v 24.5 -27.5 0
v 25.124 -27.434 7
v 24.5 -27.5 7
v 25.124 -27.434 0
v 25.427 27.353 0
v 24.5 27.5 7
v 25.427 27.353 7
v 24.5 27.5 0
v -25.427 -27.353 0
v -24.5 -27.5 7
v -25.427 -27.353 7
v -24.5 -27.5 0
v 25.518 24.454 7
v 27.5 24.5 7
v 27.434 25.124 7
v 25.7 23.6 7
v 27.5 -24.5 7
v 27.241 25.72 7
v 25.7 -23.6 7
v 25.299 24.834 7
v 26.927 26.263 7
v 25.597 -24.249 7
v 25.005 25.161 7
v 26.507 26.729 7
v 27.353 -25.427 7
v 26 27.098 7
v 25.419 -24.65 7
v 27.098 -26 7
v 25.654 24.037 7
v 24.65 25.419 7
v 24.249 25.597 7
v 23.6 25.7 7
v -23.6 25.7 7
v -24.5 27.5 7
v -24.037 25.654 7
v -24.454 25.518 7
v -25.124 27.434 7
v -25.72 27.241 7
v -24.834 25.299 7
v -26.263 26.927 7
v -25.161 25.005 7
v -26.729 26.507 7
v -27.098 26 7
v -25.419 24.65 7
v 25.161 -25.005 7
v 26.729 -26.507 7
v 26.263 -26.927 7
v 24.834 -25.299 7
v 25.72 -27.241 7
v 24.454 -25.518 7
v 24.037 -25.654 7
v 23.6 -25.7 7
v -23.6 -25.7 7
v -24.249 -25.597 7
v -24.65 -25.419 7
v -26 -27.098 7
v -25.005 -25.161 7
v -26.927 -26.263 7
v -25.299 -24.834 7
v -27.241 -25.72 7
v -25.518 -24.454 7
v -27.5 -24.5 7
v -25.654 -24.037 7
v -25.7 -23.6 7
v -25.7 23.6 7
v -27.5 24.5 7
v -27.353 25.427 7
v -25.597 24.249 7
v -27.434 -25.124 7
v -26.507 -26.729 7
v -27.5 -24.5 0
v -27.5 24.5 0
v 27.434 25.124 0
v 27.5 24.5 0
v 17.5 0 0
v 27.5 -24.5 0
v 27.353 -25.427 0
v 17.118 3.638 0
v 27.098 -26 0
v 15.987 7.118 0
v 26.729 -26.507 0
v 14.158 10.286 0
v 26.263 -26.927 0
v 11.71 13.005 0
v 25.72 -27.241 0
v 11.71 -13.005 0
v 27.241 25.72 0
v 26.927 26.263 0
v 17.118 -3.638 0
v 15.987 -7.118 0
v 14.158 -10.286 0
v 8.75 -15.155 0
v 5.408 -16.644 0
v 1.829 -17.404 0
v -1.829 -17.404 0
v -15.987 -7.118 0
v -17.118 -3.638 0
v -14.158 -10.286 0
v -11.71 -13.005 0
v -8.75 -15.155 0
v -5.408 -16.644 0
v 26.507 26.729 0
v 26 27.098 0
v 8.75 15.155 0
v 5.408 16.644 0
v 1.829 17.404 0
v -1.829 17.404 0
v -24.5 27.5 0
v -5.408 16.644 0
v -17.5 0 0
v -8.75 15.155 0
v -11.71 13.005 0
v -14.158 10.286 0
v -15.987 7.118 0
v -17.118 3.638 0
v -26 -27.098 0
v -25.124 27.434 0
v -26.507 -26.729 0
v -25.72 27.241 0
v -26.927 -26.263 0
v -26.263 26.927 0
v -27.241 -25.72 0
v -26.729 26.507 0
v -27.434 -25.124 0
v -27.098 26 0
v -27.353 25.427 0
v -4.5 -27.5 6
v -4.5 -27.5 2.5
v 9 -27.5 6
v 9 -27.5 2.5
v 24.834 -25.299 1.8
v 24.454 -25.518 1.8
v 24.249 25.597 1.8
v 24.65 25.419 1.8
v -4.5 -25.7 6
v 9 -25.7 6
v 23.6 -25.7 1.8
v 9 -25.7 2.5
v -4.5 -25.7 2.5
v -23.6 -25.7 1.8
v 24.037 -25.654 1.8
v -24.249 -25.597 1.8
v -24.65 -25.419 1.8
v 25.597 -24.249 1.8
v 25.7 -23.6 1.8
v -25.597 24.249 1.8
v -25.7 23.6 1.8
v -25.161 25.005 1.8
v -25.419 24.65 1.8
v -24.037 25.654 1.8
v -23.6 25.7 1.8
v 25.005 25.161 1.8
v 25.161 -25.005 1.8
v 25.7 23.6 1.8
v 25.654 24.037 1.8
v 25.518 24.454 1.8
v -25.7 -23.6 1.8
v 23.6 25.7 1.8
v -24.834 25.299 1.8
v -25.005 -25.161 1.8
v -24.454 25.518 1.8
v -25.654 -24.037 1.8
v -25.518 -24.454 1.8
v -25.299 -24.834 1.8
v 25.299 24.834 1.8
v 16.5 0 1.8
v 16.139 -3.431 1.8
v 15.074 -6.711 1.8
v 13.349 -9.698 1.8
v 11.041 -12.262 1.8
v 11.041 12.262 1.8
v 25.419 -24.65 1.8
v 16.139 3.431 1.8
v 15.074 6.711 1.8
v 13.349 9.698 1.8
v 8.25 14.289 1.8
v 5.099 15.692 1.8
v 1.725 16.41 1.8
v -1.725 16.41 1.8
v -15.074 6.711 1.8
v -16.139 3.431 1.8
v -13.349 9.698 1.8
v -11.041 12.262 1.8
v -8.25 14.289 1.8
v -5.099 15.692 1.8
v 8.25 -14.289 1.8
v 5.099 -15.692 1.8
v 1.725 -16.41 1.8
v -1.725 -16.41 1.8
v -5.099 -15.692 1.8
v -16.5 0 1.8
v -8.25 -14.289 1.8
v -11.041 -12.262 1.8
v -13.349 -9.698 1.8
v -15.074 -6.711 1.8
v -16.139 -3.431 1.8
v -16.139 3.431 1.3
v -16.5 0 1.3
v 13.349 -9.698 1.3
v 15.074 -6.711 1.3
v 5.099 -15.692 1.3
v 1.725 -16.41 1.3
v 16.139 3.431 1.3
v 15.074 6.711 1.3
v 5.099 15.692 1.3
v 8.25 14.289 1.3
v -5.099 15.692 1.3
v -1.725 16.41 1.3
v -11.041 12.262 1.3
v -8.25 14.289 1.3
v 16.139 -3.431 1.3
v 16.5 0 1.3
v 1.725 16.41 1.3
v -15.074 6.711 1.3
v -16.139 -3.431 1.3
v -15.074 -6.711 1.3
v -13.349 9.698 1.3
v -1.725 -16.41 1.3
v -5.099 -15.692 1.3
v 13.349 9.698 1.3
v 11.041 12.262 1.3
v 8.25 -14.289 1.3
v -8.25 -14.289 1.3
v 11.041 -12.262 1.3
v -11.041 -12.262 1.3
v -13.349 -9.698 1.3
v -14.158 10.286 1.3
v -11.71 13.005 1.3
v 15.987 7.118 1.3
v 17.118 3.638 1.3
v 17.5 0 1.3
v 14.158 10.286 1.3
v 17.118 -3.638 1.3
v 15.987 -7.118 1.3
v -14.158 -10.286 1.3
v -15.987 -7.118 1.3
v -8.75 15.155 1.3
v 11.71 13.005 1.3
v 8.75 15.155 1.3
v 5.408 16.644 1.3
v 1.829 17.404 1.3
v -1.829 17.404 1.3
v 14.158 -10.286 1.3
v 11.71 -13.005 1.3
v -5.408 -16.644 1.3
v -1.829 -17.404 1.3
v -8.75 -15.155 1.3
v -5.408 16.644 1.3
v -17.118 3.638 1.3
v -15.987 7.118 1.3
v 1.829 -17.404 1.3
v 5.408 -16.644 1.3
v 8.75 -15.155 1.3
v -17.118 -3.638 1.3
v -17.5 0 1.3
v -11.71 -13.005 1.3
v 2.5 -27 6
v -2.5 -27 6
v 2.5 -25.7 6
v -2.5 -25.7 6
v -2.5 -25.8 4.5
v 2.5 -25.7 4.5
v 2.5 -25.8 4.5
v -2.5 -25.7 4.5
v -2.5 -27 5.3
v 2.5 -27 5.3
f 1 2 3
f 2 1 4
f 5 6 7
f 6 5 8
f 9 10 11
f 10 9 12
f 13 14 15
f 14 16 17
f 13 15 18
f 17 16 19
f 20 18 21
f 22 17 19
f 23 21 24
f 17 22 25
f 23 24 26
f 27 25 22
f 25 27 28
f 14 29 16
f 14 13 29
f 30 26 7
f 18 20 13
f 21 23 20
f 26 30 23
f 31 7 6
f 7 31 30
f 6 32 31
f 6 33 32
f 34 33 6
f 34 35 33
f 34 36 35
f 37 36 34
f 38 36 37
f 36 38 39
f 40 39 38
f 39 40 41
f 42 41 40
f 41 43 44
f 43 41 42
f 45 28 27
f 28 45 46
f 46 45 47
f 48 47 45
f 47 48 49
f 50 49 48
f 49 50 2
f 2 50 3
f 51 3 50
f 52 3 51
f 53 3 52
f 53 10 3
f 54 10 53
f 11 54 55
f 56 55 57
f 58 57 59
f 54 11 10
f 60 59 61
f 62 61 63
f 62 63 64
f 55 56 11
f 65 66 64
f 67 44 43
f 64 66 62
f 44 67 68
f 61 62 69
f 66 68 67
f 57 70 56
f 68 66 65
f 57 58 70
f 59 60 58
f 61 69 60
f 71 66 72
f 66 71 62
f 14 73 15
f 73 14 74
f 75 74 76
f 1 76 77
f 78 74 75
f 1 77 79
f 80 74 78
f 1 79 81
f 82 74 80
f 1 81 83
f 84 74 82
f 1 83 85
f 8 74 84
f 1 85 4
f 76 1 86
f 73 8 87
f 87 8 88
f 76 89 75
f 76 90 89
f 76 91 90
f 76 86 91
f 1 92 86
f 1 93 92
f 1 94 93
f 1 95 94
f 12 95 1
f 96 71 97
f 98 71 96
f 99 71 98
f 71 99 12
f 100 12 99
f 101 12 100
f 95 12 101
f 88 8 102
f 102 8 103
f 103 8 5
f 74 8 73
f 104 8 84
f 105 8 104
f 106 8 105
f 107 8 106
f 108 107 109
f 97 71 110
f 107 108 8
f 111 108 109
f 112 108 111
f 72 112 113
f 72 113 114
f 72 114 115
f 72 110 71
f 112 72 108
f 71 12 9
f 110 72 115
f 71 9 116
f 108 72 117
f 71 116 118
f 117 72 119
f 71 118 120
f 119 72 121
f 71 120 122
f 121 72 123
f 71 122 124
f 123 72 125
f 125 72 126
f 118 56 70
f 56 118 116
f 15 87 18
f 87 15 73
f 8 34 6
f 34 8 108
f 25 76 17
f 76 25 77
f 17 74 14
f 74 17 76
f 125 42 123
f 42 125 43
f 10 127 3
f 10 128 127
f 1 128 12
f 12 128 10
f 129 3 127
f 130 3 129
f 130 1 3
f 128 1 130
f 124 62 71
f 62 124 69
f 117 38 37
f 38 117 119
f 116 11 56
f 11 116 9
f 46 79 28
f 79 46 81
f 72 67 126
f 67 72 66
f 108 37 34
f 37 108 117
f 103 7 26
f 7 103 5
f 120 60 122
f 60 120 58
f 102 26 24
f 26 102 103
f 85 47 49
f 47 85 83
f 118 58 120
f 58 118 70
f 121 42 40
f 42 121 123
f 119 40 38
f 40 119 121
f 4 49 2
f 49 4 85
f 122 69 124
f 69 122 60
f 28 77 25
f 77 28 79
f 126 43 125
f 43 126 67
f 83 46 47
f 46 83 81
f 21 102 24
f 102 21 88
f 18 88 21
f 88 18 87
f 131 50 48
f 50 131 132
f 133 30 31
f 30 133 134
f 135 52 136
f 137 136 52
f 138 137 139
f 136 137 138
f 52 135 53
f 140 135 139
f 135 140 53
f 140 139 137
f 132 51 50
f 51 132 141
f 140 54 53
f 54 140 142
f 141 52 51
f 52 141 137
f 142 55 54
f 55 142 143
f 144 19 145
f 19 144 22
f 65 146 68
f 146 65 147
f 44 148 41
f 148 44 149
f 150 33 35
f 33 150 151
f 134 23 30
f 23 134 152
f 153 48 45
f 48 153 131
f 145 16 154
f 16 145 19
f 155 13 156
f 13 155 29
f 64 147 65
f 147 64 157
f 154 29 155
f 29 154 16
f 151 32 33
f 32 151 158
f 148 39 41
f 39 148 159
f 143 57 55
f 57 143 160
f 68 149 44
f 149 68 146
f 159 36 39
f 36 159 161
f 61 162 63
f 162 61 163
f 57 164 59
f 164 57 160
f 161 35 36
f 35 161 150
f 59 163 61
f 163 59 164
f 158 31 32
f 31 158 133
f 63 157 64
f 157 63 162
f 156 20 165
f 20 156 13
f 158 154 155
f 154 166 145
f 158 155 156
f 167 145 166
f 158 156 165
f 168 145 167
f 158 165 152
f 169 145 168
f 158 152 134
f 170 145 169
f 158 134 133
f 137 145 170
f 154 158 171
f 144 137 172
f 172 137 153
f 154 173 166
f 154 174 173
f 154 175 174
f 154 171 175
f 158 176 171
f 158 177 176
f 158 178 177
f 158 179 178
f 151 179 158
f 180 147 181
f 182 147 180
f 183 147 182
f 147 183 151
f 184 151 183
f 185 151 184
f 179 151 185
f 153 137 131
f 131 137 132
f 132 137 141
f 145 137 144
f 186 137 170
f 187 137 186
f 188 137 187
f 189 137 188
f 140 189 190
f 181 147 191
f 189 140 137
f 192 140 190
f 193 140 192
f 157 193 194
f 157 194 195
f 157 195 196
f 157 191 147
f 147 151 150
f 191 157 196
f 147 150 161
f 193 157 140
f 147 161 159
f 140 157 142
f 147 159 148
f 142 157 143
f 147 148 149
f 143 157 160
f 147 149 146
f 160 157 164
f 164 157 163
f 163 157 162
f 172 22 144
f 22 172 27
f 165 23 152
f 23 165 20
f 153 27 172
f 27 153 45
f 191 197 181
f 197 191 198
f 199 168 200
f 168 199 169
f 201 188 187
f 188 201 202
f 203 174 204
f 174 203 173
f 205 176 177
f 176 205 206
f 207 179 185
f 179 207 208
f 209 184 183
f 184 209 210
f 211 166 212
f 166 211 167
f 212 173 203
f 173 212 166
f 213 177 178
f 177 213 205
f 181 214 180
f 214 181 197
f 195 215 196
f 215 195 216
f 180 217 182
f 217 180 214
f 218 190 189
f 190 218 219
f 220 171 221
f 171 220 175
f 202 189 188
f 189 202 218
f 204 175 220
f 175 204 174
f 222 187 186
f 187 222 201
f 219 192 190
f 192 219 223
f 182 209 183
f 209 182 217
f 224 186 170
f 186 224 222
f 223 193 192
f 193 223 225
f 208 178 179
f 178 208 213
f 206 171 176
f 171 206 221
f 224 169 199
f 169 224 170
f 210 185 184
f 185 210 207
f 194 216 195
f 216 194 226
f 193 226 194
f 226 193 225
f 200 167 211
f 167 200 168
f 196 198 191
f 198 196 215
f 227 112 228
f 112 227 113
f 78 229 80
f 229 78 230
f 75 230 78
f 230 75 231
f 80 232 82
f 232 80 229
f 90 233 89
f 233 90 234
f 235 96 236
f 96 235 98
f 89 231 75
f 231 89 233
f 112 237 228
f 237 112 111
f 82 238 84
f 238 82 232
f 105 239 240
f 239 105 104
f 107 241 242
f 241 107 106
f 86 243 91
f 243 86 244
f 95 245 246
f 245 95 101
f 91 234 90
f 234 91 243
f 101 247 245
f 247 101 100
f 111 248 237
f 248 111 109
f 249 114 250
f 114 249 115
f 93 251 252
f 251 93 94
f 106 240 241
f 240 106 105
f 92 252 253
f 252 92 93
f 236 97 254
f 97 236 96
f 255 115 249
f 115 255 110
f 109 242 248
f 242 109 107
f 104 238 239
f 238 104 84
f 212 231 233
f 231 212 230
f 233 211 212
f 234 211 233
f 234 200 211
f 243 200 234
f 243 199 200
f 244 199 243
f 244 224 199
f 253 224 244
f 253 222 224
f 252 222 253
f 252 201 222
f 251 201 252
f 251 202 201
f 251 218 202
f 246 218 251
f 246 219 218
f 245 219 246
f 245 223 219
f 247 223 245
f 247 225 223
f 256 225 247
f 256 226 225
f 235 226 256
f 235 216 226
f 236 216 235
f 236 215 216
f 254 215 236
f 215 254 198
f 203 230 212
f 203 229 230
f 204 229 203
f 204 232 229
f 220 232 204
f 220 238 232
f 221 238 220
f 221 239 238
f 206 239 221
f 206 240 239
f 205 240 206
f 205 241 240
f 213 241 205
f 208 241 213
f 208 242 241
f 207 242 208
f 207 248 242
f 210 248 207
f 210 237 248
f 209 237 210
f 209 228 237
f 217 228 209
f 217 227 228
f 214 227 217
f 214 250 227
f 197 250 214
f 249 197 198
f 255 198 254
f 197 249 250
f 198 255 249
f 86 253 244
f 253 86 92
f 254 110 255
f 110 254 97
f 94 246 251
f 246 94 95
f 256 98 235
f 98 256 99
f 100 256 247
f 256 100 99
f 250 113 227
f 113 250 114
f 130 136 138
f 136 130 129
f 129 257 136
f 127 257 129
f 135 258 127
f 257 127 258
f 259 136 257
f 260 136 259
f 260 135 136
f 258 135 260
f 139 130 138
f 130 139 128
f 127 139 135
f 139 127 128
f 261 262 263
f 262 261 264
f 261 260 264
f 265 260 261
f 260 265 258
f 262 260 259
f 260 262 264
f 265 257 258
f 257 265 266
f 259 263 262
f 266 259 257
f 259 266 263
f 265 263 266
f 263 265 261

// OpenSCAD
// RWC Energy Core - Square Edition
// Part 1: Top Shell
// 55x55mm, R3 corners, screen cutout, snap fits, USB-C port
$fn = 30;

// Parameters
size = 55;
corner_r = 3;
wall = 1.8;
height = 7;
screen_od = 33;    // screen opening diameter
screen_step = 0.5; // ledge for screen to sit on
screen_ledge_od = screen_od + 2; // ledge outer diameter
snap_w = 5;        // snap fit width
snap_h = 2;        // snap fit height  
snap_d = 1.2;      // snap fit depth
tolerance = 0.15;  // half of 0.3mm total gap

module rounded_square(s, r, h) {
    linear_extrude(h)
        offset(r) offset(-r)
            square(s, center=true);
}

module top_shell() {
    difference() {
        // Outer shell
        rounded_square(size, corner_r, height);
        
        // Hollow inside
        translate([0, 0, wall])
            rounded_square(size - wall*2, corner_r - wall/2, height);
        
        // Screen opening (through hole, smaller)
        translate([0, 0, -0.1])
            cylinder(d=screen_od, h=wall + 0.2);
        
        // Screen ledge (wider, from top of wall down by step)
        translate([0, 0, -0.1])
            cylinder(d=screen_ledge_od, h=wall - screen_step + 0.1);
        
        // USB-C port (on -Y side, centered)
        translate([0, -size/2 - 0.1, height - 4.5])
            cube([9, wall + 0.2, 3.5], center=false);
        translate([-4.5, -size/2 - 0.1, height - 4.5])
            cube([9, wall + 0.2, 3.5]);
    }
    
    // Snap fit tabs (4x, on each side, near bottom edge)
    for (angle = [0, 90, 180, 270]) {
        rotate([0, 0, angle])
            translate([0, -size/2 + wall - 0.1, height - snap_h - 0.5])
                snap_tab();
    }
}

module snap_tab() {
    // Tab with 45° entry ramp on bottom, 90° catch on top
    translate([-snap_w/2, 0, 0])
    hull() {
        cube([snap_w, 0.1, snap_h]);
        translate([0, -snap_d, snap_h * 0.4])
            cube([snap_w, 0.1, snap_h * 0.6]);
    }
    // Vertical catch face (top)
    translate([-snap_w/2, -snap_d, snap_h * 0.4])
        cube([snap_w, snap_d, 0.01]);
}

top_shell();
